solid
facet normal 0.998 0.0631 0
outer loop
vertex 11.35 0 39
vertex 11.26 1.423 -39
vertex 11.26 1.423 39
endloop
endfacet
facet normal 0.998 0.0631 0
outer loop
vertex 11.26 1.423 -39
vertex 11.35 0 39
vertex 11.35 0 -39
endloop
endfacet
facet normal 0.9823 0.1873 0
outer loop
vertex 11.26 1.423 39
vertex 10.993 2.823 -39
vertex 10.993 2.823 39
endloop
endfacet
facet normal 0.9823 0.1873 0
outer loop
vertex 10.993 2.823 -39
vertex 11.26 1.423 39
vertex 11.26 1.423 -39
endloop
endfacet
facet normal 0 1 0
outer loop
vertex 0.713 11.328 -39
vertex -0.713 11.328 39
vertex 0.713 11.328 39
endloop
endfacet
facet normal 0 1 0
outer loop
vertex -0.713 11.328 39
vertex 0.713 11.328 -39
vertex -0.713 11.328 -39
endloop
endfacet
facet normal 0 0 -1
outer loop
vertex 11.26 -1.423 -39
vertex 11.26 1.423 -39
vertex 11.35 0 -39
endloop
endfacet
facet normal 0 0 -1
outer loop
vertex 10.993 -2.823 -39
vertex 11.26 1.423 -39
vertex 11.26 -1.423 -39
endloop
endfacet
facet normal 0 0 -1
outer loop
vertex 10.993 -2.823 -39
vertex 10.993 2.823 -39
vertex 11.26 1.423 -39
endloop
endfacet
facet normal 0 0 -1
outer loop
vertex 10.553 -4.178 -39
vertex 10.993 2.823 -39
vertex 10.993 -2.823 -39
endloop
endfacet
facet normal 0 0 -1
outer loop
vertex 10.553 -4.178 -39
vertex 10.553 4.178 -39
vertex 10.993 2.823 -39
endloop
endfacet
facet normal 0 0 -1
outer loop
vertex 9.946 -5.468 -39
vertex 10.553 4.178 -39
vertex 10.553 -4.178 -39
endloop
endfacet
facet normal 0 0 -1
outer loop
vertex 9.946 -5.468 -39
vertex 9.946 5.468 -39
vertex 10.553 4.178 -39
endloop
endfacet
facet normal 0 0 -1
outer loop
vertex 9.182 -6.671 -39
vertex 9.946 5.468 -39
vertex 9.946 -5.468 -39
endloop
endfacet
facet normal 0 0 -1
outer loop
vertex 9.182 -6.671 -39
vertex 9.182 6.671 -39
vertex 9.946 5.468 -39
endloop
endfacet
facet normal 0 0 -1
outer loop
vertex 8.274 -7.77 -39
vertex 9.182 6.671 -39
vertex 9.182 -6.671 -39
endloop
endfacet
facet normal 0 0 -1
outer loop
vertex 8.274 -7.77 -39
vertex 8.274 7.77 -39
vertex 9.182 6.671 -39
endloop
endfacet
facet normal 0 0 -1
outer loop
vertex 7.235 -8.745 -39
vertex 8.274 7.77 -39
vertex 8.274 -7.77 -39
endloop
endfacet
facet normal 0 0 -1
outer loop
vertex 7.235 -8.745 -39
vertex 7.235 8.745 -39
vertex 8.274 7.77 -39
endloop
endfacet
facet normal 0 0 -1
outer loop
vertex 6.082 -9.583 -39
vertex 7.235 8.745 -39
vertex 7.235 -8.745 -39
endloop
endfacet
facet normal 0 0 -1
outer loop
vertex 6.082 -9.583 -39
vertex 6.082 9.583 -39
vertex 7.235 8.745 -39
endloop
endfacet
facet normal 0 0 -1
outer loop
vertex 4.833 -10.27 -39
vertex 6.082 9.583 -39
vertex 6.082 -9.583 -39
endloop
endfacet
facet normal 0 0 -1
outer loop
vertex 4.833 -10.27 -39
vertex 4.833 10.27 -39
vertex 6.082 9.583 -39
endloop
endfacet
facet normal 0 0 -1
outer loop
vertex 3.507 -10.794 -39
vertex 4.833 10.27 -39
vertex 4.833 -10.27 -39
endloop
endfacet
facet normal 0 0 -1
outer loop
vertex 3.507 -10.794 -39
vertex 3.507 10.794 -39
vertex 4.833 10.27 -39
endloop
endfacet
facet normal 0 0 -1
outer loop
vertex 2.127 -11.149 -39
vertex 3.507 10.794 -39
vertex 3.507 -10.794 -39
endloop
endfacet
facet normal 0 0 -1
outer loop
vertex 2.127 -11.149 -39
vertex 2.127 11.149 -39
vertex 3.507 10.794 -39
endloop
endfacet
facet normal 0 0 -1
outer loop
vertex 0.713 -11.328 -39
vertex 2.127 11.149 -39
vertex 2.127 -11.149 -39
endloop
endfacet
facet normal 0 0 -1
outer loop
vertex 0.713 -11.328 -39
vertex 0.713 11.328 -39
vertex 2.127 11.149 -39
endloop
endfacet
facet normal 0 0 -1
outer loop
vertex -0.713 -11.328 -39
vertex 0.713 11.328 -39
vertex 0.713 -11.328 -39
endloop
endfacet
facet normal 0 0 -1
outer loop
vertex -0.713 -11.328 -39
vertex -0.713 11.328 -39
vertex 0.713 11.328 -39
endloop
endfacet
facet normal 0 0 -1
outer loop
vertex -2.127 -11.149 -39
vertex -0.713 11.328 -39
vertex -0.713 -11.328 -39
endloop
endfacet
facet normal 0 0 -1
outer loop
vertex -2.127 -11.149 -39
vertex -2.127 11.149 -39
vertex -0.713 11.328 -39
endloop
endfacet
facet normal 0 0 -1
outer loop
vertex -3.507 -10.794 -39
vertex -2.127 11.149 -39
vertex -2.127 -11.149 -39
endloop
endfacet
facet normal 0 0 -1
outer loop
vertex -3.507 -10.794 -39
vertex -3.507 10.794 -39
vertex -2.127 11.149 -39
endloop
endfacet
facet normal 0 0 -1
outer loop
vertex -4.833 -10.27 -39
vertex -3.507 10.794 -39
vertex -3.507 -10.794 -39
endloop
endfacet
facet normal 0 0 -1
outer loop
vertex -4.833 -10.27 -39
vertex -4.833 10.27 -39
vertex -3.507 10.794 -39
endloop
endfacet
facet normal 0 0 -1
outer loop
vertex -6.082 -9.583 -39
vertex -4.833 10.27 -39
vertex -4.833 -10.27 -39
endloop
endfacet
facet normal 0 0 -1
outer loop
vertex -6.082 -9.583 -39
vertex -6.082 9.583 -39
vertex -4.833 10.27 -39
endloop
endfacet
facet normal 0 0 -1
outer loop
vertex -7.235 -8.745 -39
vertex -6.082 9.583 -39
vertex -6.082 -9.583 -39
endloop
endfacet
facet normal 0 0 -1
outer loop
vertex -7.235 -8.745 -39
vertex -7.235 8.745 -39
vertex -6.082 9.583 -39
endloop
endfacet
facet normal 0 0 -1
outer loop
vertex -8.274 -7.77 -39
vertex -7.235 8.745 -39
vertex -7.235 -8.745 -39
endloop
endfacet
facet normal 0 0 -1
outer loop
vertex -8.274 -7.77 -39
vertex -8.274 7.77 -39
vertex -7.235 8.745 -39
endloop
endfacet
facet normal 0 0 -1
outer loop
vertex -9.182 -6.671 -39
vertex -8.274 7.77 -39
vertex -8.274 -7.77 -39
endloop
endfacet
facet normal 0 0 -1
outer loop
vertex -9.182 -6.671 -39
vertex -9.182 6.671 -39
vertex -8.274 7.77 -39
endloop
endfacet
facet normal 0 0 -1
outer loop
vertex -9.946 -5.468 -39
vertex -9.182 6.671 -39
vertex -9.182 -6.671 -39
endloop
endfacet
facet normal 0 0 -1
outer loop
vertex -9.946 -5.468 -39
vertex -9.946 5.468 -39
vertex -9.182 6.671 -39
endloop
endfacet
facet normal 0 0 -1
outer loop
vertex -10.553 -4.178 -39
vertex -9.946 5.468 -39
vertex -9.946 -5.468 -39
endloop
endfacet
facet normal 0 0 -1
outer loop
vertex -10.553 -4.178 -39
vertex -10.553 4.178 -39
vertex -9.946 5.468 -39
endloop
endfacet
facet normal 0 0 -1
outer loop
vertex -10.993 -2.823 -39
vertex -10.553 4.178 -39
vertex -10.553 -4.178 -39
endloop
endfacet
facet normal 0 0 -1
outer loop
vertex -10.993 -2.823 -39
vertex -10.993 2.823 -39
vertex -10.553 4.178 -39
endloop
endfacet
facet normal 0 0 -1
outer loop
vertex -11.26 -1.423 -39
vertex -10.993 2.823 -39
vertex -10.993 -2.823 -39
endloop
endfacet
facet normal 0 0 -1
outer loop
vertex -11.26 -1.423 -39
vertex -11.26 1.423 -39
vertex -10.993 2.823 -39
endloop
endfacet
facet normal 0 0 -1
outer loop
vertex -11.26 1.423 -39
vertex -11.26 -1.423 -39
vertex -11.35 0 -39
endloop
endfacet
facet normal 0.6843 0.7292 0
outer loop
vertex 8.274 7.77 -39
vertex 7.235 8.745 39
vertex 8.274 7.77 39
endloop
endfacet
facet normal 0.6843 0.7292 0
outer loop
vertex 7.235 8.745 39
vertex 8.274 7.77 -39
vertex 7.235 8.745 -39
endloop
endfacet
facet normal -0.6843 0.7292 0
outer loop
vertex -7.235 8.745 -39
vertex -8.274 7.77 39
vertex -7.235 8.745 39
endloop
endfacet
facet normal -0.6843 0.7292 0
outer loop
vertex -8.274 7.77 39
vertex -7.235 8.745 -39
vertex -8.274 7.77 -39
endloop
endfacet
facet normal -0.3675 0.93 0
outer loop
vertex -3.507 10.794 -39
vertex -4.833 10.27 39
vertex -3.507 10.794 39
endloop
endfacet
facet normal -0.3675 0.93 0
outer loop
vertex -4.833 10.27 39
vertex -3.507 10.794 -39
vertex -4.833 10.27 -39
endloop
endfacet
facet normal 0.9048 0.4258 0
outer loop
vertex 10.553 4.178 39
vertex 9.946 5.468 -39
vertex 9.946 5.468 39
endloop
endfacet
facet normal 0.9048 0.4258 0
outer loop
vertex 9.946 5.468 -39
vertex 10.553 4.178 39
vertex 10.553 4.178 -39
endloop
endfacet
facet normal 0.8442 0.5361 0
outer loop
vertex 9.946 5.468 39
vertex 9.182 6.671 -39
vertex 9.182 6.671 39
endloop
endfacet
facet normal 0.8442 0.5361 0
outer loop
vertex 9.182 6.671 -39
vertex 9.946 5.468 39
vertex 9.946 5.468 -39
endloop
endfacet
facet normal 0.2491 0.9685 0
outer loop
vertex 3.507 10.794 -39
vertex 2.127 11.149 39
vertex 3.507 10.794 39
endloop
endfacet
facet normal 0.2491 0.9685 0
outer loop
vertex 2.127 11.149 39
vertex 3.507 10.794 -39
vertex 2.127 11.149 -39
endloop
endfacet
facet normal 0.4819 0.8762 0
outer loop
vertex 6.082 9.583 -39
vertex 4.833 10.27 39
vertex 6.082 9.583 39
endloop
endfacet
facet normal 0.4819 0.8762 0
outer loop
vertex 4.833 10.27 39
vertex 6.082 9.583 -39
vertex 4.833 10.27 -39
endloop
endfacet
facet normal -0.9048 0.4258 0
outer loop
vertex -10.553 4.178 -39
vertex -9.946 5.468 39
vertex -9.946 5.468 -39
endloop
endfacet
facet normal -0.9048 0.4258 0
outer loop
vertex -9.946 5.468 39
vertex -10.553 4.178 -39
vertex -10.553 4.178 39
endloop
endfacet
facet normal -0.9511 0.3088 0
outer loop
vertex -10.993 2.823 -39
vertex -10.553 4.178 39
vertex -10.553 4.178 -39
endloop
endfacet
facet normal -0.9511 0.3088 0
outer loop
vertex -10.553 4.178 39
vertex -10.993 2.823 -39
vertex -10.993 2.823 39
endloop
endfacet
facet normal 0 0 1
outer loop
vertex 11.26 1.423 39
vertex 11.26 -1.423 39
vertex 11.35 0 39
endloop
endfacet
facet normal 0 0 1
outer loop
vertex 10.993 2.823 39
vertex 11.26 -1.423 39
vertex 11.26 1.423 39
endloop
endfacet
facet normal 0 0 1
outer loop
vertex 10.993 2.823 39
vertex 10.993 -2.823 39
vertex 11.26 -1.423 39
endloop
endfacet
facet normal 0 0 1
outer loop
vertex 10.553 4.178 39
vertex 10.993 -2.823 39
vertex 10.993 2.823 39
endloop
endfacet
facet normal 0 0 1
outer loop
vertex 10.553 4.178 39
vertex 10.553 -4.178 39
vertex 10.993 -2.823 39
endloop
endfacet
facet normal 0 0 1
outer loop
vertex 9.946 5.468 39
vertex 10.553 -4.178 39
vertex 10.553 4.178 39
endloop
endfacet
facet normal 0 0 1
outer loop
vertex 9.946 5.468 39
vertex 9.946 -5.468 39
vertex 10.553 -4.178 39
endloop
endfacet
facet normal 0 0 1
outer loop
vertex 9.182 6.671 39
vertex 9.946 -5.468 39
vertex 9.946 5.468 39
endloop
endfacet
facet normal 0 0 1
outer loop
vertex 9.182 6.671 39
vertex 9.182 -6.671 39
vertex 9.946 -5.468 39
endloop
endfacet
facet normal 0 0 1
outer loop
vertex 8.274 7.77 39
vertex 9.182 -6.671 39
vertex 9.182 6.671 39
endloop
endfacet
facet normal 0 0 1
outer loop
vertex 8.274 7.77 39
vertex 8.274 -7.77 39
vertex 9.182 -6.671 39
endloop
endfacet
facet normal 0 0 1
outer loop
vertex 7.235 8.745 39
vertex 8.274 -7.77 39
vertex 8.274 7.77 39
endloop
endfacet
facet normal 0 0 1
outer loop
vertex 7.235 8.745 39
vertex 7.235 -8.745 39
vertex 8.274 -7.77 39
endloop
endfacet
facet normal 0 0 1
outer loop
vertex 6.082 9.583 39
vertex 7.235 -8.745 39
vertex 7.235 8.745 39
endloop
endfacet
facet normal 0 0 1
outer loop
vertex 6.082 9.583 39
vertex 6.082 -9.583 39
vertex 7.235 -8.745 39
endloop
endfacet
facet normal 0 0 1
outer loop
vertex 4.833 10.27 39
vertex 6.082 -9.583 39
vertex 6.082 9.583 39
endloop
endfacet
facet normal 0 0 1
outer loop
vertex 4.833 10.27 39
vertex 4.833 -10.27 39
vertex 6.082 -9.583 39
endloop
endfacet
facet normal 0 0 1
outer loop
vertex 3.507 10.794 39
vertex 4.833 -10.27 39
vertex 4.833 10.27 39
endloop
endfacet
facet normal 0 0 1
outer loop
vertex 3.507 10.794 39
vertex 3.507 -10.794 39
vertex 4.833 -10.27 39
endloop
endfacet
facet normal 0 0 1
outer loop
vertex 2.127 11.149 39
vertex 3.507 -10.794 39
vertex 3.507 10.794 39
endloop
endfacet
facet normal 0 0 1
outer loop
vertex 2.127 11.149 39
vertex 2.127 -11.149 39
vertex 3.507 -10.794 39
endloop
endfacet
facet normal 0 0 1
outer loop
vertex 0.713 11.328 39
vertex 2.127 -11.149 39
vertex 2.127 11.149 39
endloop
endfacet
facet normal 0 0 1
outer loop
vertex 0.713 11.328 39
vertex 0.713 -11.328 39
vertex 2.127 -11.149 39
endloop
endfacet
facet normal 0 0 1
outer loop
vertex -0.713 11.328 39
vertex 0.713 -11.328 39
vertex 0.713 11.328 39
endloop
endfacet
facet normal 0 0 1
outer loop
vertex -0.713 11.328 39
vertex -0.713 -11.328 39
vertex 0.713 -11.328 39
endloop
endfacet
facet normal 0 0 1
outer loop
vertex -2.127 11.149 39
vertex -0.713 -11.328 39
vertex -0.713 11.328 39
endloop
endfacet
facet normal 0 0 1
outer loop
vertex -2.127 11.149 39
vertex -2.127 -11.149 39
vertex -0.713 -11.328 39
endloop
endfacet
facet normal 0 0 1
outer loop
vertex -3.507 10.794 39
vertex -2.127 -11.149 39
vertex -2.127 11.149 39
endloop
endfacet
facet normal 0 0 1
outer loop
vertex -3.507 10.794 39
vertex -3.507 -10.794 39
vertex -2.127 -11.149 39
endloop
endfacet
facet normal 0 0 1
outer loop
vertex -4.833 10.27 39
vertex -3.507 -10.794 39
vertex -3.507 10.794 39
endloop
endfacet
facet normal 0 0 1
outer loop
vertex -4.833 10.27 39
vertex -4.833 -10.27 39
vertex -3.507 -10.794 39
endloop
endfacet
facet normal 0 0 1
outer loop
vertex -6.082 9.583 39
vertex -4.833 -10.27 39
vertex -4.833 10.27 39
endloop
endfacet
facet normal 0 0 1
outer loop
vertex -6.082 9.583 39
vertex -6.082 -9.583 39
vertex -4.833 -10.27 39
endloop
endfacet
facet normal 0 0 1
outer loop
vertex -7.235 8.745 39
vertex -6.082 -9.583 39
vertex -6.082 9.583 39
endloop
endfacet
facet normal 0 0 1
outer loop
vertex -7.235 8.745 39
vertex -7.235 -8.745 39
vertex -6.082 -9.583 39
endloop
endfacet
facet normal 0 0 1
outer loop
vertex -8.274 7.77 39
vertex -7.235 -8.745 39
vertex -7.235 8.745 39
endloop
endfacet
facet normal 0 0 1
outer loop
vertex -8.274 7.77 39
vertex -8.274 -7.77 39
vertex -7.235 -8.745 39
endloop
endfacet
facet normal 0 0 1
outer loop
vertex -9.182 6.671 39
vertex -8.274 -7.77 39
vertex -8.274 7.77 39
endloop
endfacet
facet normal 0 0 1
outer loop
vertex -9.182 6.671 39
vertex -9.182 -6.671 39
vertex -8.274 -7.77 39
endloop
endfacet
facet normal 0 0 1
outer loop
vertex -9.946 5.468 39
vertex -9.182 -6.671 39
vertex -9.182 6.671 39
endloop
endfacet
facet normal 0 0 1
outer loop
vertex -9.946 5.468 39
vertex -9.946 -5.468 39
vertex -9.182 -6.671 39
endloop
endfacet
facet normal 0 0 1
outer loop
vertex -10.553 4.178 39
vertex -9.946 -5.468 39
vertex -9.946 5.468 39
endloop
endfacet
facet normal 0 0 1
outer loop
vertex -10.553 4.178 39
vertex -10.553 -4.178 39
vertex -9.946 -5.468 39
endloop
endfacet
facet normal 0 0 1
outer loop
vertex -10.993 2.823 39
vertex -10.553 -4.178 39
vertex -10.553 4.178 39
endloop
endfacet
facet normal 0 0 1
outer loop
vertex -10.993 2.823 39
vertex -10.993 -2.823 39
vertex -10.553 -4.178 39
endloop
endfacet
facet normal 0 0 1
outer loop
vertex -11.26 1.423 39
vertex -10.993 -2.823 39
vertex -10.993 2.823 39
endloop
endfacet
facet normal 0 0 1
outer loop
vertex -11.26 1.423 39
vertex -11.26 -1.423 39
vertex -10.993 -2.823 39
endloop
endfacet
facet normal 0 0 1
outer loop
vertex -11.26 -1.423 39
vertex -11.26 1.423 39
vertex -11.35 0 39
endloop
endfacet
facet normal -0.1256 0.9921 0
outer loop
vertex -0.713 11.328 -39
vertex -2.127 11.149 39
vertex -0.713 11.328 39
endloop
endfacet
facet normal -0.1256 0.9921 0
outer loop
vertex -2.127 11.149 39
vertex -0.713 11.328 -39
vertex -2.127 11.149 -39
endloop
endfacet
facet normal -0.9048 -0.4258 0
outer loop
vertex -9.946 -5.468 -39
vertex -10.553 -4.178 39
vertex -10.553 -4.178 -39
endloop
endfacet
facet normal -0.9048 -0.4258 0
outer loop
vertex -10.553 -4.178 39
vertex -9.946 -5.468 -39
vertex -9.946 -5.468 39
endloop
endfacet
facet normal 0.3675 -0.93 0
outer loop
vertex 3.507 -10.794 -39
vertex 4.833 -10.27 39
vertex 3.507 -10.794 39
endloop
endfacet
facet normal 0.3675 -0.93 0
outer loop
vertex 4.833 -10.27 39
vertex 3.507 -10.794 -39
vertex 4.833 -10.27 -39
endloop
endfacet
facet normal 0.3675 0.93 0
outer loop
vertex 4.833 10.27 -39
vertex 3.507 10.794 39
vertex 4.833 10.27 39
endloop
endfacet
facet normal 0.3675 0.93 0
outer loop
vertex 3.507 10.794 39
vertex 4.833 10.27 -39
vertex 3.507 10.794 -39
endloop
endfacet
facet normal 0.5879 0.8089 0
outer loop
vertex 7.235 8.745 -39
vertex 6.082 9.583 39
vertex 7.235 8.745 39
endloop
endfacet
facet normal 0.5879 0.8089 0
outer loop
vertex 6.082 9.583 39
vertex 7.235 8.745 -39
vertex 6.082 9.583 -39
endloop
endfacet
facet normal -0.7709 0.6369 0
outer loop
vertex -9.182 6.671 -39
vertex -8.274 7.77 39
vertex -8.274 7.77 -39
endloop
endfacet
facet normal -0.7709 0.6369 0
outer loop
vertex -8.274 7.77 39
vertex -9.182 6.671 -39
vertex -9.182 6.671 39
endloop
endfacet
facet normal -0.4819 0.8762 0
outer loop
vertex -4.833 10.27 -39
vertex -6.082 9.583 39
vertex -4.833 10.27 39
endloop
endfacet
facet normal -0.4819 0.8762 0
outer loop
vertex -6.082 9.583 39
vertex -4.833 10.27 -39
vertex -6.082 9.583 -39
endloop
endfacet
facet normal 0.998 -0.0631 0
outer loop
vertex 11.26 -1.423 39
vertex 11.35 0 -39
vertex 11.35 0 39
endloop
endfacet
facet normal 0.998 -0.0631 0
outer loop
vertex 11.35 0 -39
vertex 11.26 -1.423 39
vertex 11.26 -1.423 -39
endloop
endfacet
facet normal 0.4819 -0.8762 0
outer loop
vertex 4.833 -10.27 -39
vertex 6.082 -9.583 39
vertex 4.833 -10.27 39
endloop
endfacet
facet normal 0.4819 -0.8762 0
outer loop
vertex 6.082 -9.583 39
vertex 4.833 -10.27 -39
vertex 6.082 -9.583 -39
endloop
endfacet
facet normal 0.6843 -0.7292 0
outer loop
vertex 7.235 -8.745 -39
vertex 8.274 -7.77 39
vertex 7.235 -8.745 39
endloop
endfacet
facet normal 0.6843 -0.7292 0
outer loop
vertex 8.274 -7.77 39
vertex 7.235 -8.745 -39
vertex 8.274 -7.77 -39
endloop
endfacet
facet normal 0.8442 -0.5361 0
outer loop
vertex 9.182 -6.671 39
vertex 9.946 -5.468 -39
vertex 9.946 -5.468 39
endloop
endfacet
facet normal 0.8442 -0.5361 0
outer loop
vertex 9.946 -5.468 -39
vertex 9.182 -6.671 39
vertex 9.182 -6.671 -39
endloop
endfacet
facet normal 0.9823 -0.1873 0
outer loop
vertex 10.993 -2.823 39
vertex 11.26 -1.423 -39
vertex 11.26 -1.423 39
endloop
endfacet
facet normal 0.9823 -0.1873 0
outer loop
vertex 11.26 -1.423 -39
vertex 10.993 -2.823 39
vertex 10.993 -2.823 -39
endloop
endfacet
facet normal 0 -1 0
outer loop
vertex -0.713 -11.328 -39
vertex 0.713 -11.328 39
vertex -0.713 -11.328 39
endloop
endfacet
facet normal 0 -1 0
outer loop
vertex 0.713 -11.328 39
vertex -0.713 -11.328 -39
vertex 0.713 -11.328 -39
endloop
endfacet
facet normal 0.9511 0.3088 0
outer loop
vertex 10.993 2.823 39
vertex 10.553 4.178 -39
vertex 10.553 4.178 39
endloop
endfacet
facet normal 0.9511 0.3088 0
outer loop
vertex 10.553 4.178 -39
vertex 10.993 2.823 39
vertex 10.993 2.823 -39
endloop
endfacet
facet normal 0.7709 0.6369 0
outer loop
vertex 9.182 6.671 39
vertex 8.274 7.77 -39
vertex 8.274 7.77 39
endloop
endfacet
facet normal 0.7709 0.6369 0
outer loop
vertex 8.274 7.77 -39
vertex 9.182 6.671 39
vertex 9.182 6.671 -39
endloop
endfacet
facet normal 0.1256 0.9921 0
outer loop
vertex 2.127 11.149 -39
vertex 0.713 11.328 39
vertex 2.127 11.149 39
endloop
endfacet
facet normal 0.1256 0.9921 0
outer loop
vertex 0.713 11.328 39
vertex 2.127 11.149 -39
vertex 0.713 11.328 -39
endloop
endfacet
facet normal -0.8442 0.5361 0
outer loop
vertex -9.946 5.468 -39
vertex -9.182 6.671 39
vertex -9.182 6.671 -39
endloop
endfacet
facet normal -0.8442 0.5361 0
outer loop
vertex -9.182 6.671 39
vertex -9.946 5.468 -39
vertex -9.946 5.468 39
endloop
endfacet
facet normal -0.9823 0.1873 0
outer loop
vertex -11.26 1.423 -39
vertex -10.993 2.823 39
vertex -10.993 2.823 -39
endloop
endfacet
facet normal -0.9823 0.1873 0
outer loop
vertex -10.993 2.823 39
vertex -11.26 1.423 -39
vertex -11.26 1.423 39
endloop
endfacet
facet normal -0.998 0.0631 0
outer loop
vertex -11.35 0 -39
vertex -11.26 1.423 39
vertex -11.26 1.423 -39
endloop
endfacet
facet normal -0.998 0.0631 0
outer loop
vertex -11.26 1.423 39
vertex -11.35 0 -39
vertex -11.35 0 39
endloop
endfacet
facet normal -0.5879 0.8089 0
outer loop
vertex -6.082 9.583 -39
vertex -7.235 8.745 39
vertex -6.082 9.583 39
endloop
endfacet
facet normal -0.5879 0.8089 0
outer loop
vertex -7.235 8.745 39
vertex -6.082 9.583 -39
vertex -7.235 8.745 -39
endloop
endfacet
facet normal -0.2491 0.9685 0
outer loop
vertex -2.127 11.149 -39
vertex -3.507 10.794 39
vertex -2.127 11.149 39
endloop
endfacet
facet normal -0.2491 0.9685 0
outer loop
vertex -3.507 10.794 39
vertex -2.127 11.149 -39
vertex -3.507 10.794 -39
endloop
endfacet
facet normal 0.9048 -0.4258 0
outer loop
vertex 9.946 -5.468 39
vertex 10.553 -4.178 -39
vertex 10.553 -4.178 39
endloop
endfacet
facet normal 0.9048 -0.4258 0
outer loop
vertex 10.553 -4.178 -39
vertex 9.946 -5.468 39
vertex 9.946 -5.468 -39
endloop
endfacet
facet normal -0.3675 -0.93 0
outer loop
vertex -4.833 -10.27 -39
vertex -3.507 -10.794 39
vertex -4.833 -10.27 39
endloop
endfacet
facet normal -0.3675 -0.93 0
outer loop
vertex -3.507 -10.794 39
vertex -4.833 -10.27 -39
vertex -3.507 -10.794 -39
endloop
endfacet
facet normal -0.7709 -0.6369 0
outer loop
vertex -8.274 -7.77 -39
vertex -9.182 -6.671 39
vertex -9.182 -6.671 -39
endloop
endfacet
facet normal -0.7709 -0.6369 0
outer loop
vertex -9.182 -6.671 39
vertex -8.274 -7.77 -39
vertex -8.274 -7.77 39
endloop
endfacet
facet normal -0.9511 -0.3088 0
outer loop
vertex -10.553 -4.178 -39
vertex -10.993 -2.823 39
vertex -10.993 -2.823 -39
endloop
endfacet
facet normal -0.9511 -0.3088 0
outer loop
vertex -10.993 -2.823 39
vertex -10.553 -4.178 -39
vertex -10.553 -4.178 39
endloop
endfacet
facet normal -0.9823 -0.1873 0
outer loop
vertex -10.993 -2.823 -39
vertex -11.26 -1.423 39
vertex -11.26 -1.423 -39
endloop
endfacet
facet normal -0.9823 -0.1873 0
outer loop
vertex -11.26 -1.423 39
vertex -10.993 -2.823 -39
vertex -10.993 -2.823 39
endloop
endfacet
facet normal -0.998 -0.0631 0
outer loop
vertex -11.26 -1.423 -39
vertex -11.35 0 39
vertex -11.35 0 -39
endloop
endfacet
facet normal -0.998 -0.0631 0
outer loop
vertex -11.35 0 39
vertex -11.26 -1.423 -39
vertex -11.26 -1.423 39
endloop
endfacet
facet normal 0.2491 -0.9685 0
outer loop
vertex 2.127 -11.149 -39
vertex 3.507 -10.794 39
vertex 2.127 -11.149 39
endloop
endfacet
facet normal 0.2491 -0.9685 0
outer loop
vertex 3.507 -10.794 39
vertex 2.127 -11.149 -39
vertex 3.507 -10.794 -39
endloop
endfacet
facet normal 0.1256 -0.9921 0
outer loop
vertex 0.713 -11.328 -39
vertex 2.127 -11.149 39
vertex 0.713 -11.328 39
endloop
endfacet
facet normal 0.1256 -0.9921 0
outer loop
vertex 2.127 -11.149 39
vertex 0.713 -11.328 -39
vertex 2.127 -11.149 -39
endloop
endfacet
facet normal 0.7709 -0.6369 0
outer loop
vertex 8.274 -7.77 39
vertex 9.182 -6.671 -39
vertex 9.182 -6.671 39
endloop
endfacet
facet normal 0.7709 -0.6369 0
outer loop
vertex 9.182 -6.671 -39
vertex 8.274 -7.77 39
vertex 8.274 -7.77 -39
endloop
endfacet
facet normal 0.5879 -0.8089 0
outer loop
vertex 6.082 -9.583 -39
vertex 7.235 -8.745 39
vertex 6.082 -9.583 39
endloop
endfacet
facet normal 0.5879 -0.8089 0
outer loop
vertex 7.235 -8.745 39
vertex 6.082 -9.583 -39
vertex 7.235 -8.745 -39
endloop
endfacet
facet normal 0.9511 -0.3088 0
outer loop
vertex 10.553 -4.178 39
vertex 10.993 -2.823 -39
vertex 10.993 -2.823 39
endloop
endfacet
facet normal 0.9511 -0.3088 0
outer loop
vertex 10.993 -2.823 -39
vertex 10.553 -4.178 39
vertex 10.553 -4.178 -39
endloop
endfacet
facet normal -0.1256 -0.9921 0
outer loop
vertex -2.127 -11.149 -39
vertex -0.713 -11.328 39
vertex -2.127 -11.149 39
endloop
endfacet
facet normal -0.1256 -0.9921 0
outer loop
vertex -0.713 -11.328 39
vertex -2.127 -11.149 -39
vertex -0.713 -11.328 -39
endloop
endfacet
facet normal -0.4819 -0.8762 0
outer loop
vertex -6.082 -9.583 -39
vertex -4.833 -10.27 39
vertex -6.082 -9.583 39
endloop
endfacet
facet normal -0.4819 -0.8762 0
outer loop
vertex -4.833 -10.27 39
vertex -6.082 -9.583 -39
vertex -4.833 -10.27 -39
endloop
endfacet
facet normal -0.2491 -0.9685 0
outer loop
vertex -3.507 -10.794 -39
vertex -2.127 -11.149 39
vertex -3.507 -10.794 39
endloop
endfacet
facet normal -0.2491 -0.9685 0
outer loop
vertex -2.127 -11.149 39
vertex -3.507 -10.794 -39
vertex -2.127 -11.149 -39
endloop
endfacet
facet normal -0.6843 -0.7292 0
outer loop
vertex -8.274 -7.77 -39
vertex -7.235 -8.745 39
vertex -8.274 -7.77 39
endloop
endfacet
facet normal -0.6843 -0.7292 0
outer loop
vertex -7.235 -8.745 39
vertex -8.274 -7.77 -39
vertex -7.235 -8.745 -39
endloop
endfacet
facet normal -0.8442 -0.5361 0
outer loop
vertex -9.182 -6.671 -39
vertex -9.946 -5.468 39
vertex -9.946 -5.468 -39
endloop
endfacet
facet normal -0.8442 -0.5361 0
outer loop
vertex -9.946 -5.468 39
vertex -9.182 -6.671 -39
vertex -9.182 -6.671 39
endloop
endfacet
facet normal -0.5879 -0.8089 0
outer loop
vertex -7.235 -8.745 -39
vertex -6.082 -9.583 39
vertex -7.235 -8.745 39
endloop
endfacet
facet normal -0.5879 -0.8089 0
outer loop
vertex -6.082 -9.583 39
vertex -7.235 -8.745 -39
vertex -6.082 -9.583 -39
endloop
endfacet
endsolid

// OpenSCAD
$fn = 50;


difference() {
	union() {
		translate(v = [0, 0, -39.0000000000]) {
			cylinder(h = 78, r = 11.3500000000);
		}
	}
	union() {
		translate(v = [0, 0, -100.0000000000]) {
			cylinder(h = 200, r = 0);
		}
	}
}
